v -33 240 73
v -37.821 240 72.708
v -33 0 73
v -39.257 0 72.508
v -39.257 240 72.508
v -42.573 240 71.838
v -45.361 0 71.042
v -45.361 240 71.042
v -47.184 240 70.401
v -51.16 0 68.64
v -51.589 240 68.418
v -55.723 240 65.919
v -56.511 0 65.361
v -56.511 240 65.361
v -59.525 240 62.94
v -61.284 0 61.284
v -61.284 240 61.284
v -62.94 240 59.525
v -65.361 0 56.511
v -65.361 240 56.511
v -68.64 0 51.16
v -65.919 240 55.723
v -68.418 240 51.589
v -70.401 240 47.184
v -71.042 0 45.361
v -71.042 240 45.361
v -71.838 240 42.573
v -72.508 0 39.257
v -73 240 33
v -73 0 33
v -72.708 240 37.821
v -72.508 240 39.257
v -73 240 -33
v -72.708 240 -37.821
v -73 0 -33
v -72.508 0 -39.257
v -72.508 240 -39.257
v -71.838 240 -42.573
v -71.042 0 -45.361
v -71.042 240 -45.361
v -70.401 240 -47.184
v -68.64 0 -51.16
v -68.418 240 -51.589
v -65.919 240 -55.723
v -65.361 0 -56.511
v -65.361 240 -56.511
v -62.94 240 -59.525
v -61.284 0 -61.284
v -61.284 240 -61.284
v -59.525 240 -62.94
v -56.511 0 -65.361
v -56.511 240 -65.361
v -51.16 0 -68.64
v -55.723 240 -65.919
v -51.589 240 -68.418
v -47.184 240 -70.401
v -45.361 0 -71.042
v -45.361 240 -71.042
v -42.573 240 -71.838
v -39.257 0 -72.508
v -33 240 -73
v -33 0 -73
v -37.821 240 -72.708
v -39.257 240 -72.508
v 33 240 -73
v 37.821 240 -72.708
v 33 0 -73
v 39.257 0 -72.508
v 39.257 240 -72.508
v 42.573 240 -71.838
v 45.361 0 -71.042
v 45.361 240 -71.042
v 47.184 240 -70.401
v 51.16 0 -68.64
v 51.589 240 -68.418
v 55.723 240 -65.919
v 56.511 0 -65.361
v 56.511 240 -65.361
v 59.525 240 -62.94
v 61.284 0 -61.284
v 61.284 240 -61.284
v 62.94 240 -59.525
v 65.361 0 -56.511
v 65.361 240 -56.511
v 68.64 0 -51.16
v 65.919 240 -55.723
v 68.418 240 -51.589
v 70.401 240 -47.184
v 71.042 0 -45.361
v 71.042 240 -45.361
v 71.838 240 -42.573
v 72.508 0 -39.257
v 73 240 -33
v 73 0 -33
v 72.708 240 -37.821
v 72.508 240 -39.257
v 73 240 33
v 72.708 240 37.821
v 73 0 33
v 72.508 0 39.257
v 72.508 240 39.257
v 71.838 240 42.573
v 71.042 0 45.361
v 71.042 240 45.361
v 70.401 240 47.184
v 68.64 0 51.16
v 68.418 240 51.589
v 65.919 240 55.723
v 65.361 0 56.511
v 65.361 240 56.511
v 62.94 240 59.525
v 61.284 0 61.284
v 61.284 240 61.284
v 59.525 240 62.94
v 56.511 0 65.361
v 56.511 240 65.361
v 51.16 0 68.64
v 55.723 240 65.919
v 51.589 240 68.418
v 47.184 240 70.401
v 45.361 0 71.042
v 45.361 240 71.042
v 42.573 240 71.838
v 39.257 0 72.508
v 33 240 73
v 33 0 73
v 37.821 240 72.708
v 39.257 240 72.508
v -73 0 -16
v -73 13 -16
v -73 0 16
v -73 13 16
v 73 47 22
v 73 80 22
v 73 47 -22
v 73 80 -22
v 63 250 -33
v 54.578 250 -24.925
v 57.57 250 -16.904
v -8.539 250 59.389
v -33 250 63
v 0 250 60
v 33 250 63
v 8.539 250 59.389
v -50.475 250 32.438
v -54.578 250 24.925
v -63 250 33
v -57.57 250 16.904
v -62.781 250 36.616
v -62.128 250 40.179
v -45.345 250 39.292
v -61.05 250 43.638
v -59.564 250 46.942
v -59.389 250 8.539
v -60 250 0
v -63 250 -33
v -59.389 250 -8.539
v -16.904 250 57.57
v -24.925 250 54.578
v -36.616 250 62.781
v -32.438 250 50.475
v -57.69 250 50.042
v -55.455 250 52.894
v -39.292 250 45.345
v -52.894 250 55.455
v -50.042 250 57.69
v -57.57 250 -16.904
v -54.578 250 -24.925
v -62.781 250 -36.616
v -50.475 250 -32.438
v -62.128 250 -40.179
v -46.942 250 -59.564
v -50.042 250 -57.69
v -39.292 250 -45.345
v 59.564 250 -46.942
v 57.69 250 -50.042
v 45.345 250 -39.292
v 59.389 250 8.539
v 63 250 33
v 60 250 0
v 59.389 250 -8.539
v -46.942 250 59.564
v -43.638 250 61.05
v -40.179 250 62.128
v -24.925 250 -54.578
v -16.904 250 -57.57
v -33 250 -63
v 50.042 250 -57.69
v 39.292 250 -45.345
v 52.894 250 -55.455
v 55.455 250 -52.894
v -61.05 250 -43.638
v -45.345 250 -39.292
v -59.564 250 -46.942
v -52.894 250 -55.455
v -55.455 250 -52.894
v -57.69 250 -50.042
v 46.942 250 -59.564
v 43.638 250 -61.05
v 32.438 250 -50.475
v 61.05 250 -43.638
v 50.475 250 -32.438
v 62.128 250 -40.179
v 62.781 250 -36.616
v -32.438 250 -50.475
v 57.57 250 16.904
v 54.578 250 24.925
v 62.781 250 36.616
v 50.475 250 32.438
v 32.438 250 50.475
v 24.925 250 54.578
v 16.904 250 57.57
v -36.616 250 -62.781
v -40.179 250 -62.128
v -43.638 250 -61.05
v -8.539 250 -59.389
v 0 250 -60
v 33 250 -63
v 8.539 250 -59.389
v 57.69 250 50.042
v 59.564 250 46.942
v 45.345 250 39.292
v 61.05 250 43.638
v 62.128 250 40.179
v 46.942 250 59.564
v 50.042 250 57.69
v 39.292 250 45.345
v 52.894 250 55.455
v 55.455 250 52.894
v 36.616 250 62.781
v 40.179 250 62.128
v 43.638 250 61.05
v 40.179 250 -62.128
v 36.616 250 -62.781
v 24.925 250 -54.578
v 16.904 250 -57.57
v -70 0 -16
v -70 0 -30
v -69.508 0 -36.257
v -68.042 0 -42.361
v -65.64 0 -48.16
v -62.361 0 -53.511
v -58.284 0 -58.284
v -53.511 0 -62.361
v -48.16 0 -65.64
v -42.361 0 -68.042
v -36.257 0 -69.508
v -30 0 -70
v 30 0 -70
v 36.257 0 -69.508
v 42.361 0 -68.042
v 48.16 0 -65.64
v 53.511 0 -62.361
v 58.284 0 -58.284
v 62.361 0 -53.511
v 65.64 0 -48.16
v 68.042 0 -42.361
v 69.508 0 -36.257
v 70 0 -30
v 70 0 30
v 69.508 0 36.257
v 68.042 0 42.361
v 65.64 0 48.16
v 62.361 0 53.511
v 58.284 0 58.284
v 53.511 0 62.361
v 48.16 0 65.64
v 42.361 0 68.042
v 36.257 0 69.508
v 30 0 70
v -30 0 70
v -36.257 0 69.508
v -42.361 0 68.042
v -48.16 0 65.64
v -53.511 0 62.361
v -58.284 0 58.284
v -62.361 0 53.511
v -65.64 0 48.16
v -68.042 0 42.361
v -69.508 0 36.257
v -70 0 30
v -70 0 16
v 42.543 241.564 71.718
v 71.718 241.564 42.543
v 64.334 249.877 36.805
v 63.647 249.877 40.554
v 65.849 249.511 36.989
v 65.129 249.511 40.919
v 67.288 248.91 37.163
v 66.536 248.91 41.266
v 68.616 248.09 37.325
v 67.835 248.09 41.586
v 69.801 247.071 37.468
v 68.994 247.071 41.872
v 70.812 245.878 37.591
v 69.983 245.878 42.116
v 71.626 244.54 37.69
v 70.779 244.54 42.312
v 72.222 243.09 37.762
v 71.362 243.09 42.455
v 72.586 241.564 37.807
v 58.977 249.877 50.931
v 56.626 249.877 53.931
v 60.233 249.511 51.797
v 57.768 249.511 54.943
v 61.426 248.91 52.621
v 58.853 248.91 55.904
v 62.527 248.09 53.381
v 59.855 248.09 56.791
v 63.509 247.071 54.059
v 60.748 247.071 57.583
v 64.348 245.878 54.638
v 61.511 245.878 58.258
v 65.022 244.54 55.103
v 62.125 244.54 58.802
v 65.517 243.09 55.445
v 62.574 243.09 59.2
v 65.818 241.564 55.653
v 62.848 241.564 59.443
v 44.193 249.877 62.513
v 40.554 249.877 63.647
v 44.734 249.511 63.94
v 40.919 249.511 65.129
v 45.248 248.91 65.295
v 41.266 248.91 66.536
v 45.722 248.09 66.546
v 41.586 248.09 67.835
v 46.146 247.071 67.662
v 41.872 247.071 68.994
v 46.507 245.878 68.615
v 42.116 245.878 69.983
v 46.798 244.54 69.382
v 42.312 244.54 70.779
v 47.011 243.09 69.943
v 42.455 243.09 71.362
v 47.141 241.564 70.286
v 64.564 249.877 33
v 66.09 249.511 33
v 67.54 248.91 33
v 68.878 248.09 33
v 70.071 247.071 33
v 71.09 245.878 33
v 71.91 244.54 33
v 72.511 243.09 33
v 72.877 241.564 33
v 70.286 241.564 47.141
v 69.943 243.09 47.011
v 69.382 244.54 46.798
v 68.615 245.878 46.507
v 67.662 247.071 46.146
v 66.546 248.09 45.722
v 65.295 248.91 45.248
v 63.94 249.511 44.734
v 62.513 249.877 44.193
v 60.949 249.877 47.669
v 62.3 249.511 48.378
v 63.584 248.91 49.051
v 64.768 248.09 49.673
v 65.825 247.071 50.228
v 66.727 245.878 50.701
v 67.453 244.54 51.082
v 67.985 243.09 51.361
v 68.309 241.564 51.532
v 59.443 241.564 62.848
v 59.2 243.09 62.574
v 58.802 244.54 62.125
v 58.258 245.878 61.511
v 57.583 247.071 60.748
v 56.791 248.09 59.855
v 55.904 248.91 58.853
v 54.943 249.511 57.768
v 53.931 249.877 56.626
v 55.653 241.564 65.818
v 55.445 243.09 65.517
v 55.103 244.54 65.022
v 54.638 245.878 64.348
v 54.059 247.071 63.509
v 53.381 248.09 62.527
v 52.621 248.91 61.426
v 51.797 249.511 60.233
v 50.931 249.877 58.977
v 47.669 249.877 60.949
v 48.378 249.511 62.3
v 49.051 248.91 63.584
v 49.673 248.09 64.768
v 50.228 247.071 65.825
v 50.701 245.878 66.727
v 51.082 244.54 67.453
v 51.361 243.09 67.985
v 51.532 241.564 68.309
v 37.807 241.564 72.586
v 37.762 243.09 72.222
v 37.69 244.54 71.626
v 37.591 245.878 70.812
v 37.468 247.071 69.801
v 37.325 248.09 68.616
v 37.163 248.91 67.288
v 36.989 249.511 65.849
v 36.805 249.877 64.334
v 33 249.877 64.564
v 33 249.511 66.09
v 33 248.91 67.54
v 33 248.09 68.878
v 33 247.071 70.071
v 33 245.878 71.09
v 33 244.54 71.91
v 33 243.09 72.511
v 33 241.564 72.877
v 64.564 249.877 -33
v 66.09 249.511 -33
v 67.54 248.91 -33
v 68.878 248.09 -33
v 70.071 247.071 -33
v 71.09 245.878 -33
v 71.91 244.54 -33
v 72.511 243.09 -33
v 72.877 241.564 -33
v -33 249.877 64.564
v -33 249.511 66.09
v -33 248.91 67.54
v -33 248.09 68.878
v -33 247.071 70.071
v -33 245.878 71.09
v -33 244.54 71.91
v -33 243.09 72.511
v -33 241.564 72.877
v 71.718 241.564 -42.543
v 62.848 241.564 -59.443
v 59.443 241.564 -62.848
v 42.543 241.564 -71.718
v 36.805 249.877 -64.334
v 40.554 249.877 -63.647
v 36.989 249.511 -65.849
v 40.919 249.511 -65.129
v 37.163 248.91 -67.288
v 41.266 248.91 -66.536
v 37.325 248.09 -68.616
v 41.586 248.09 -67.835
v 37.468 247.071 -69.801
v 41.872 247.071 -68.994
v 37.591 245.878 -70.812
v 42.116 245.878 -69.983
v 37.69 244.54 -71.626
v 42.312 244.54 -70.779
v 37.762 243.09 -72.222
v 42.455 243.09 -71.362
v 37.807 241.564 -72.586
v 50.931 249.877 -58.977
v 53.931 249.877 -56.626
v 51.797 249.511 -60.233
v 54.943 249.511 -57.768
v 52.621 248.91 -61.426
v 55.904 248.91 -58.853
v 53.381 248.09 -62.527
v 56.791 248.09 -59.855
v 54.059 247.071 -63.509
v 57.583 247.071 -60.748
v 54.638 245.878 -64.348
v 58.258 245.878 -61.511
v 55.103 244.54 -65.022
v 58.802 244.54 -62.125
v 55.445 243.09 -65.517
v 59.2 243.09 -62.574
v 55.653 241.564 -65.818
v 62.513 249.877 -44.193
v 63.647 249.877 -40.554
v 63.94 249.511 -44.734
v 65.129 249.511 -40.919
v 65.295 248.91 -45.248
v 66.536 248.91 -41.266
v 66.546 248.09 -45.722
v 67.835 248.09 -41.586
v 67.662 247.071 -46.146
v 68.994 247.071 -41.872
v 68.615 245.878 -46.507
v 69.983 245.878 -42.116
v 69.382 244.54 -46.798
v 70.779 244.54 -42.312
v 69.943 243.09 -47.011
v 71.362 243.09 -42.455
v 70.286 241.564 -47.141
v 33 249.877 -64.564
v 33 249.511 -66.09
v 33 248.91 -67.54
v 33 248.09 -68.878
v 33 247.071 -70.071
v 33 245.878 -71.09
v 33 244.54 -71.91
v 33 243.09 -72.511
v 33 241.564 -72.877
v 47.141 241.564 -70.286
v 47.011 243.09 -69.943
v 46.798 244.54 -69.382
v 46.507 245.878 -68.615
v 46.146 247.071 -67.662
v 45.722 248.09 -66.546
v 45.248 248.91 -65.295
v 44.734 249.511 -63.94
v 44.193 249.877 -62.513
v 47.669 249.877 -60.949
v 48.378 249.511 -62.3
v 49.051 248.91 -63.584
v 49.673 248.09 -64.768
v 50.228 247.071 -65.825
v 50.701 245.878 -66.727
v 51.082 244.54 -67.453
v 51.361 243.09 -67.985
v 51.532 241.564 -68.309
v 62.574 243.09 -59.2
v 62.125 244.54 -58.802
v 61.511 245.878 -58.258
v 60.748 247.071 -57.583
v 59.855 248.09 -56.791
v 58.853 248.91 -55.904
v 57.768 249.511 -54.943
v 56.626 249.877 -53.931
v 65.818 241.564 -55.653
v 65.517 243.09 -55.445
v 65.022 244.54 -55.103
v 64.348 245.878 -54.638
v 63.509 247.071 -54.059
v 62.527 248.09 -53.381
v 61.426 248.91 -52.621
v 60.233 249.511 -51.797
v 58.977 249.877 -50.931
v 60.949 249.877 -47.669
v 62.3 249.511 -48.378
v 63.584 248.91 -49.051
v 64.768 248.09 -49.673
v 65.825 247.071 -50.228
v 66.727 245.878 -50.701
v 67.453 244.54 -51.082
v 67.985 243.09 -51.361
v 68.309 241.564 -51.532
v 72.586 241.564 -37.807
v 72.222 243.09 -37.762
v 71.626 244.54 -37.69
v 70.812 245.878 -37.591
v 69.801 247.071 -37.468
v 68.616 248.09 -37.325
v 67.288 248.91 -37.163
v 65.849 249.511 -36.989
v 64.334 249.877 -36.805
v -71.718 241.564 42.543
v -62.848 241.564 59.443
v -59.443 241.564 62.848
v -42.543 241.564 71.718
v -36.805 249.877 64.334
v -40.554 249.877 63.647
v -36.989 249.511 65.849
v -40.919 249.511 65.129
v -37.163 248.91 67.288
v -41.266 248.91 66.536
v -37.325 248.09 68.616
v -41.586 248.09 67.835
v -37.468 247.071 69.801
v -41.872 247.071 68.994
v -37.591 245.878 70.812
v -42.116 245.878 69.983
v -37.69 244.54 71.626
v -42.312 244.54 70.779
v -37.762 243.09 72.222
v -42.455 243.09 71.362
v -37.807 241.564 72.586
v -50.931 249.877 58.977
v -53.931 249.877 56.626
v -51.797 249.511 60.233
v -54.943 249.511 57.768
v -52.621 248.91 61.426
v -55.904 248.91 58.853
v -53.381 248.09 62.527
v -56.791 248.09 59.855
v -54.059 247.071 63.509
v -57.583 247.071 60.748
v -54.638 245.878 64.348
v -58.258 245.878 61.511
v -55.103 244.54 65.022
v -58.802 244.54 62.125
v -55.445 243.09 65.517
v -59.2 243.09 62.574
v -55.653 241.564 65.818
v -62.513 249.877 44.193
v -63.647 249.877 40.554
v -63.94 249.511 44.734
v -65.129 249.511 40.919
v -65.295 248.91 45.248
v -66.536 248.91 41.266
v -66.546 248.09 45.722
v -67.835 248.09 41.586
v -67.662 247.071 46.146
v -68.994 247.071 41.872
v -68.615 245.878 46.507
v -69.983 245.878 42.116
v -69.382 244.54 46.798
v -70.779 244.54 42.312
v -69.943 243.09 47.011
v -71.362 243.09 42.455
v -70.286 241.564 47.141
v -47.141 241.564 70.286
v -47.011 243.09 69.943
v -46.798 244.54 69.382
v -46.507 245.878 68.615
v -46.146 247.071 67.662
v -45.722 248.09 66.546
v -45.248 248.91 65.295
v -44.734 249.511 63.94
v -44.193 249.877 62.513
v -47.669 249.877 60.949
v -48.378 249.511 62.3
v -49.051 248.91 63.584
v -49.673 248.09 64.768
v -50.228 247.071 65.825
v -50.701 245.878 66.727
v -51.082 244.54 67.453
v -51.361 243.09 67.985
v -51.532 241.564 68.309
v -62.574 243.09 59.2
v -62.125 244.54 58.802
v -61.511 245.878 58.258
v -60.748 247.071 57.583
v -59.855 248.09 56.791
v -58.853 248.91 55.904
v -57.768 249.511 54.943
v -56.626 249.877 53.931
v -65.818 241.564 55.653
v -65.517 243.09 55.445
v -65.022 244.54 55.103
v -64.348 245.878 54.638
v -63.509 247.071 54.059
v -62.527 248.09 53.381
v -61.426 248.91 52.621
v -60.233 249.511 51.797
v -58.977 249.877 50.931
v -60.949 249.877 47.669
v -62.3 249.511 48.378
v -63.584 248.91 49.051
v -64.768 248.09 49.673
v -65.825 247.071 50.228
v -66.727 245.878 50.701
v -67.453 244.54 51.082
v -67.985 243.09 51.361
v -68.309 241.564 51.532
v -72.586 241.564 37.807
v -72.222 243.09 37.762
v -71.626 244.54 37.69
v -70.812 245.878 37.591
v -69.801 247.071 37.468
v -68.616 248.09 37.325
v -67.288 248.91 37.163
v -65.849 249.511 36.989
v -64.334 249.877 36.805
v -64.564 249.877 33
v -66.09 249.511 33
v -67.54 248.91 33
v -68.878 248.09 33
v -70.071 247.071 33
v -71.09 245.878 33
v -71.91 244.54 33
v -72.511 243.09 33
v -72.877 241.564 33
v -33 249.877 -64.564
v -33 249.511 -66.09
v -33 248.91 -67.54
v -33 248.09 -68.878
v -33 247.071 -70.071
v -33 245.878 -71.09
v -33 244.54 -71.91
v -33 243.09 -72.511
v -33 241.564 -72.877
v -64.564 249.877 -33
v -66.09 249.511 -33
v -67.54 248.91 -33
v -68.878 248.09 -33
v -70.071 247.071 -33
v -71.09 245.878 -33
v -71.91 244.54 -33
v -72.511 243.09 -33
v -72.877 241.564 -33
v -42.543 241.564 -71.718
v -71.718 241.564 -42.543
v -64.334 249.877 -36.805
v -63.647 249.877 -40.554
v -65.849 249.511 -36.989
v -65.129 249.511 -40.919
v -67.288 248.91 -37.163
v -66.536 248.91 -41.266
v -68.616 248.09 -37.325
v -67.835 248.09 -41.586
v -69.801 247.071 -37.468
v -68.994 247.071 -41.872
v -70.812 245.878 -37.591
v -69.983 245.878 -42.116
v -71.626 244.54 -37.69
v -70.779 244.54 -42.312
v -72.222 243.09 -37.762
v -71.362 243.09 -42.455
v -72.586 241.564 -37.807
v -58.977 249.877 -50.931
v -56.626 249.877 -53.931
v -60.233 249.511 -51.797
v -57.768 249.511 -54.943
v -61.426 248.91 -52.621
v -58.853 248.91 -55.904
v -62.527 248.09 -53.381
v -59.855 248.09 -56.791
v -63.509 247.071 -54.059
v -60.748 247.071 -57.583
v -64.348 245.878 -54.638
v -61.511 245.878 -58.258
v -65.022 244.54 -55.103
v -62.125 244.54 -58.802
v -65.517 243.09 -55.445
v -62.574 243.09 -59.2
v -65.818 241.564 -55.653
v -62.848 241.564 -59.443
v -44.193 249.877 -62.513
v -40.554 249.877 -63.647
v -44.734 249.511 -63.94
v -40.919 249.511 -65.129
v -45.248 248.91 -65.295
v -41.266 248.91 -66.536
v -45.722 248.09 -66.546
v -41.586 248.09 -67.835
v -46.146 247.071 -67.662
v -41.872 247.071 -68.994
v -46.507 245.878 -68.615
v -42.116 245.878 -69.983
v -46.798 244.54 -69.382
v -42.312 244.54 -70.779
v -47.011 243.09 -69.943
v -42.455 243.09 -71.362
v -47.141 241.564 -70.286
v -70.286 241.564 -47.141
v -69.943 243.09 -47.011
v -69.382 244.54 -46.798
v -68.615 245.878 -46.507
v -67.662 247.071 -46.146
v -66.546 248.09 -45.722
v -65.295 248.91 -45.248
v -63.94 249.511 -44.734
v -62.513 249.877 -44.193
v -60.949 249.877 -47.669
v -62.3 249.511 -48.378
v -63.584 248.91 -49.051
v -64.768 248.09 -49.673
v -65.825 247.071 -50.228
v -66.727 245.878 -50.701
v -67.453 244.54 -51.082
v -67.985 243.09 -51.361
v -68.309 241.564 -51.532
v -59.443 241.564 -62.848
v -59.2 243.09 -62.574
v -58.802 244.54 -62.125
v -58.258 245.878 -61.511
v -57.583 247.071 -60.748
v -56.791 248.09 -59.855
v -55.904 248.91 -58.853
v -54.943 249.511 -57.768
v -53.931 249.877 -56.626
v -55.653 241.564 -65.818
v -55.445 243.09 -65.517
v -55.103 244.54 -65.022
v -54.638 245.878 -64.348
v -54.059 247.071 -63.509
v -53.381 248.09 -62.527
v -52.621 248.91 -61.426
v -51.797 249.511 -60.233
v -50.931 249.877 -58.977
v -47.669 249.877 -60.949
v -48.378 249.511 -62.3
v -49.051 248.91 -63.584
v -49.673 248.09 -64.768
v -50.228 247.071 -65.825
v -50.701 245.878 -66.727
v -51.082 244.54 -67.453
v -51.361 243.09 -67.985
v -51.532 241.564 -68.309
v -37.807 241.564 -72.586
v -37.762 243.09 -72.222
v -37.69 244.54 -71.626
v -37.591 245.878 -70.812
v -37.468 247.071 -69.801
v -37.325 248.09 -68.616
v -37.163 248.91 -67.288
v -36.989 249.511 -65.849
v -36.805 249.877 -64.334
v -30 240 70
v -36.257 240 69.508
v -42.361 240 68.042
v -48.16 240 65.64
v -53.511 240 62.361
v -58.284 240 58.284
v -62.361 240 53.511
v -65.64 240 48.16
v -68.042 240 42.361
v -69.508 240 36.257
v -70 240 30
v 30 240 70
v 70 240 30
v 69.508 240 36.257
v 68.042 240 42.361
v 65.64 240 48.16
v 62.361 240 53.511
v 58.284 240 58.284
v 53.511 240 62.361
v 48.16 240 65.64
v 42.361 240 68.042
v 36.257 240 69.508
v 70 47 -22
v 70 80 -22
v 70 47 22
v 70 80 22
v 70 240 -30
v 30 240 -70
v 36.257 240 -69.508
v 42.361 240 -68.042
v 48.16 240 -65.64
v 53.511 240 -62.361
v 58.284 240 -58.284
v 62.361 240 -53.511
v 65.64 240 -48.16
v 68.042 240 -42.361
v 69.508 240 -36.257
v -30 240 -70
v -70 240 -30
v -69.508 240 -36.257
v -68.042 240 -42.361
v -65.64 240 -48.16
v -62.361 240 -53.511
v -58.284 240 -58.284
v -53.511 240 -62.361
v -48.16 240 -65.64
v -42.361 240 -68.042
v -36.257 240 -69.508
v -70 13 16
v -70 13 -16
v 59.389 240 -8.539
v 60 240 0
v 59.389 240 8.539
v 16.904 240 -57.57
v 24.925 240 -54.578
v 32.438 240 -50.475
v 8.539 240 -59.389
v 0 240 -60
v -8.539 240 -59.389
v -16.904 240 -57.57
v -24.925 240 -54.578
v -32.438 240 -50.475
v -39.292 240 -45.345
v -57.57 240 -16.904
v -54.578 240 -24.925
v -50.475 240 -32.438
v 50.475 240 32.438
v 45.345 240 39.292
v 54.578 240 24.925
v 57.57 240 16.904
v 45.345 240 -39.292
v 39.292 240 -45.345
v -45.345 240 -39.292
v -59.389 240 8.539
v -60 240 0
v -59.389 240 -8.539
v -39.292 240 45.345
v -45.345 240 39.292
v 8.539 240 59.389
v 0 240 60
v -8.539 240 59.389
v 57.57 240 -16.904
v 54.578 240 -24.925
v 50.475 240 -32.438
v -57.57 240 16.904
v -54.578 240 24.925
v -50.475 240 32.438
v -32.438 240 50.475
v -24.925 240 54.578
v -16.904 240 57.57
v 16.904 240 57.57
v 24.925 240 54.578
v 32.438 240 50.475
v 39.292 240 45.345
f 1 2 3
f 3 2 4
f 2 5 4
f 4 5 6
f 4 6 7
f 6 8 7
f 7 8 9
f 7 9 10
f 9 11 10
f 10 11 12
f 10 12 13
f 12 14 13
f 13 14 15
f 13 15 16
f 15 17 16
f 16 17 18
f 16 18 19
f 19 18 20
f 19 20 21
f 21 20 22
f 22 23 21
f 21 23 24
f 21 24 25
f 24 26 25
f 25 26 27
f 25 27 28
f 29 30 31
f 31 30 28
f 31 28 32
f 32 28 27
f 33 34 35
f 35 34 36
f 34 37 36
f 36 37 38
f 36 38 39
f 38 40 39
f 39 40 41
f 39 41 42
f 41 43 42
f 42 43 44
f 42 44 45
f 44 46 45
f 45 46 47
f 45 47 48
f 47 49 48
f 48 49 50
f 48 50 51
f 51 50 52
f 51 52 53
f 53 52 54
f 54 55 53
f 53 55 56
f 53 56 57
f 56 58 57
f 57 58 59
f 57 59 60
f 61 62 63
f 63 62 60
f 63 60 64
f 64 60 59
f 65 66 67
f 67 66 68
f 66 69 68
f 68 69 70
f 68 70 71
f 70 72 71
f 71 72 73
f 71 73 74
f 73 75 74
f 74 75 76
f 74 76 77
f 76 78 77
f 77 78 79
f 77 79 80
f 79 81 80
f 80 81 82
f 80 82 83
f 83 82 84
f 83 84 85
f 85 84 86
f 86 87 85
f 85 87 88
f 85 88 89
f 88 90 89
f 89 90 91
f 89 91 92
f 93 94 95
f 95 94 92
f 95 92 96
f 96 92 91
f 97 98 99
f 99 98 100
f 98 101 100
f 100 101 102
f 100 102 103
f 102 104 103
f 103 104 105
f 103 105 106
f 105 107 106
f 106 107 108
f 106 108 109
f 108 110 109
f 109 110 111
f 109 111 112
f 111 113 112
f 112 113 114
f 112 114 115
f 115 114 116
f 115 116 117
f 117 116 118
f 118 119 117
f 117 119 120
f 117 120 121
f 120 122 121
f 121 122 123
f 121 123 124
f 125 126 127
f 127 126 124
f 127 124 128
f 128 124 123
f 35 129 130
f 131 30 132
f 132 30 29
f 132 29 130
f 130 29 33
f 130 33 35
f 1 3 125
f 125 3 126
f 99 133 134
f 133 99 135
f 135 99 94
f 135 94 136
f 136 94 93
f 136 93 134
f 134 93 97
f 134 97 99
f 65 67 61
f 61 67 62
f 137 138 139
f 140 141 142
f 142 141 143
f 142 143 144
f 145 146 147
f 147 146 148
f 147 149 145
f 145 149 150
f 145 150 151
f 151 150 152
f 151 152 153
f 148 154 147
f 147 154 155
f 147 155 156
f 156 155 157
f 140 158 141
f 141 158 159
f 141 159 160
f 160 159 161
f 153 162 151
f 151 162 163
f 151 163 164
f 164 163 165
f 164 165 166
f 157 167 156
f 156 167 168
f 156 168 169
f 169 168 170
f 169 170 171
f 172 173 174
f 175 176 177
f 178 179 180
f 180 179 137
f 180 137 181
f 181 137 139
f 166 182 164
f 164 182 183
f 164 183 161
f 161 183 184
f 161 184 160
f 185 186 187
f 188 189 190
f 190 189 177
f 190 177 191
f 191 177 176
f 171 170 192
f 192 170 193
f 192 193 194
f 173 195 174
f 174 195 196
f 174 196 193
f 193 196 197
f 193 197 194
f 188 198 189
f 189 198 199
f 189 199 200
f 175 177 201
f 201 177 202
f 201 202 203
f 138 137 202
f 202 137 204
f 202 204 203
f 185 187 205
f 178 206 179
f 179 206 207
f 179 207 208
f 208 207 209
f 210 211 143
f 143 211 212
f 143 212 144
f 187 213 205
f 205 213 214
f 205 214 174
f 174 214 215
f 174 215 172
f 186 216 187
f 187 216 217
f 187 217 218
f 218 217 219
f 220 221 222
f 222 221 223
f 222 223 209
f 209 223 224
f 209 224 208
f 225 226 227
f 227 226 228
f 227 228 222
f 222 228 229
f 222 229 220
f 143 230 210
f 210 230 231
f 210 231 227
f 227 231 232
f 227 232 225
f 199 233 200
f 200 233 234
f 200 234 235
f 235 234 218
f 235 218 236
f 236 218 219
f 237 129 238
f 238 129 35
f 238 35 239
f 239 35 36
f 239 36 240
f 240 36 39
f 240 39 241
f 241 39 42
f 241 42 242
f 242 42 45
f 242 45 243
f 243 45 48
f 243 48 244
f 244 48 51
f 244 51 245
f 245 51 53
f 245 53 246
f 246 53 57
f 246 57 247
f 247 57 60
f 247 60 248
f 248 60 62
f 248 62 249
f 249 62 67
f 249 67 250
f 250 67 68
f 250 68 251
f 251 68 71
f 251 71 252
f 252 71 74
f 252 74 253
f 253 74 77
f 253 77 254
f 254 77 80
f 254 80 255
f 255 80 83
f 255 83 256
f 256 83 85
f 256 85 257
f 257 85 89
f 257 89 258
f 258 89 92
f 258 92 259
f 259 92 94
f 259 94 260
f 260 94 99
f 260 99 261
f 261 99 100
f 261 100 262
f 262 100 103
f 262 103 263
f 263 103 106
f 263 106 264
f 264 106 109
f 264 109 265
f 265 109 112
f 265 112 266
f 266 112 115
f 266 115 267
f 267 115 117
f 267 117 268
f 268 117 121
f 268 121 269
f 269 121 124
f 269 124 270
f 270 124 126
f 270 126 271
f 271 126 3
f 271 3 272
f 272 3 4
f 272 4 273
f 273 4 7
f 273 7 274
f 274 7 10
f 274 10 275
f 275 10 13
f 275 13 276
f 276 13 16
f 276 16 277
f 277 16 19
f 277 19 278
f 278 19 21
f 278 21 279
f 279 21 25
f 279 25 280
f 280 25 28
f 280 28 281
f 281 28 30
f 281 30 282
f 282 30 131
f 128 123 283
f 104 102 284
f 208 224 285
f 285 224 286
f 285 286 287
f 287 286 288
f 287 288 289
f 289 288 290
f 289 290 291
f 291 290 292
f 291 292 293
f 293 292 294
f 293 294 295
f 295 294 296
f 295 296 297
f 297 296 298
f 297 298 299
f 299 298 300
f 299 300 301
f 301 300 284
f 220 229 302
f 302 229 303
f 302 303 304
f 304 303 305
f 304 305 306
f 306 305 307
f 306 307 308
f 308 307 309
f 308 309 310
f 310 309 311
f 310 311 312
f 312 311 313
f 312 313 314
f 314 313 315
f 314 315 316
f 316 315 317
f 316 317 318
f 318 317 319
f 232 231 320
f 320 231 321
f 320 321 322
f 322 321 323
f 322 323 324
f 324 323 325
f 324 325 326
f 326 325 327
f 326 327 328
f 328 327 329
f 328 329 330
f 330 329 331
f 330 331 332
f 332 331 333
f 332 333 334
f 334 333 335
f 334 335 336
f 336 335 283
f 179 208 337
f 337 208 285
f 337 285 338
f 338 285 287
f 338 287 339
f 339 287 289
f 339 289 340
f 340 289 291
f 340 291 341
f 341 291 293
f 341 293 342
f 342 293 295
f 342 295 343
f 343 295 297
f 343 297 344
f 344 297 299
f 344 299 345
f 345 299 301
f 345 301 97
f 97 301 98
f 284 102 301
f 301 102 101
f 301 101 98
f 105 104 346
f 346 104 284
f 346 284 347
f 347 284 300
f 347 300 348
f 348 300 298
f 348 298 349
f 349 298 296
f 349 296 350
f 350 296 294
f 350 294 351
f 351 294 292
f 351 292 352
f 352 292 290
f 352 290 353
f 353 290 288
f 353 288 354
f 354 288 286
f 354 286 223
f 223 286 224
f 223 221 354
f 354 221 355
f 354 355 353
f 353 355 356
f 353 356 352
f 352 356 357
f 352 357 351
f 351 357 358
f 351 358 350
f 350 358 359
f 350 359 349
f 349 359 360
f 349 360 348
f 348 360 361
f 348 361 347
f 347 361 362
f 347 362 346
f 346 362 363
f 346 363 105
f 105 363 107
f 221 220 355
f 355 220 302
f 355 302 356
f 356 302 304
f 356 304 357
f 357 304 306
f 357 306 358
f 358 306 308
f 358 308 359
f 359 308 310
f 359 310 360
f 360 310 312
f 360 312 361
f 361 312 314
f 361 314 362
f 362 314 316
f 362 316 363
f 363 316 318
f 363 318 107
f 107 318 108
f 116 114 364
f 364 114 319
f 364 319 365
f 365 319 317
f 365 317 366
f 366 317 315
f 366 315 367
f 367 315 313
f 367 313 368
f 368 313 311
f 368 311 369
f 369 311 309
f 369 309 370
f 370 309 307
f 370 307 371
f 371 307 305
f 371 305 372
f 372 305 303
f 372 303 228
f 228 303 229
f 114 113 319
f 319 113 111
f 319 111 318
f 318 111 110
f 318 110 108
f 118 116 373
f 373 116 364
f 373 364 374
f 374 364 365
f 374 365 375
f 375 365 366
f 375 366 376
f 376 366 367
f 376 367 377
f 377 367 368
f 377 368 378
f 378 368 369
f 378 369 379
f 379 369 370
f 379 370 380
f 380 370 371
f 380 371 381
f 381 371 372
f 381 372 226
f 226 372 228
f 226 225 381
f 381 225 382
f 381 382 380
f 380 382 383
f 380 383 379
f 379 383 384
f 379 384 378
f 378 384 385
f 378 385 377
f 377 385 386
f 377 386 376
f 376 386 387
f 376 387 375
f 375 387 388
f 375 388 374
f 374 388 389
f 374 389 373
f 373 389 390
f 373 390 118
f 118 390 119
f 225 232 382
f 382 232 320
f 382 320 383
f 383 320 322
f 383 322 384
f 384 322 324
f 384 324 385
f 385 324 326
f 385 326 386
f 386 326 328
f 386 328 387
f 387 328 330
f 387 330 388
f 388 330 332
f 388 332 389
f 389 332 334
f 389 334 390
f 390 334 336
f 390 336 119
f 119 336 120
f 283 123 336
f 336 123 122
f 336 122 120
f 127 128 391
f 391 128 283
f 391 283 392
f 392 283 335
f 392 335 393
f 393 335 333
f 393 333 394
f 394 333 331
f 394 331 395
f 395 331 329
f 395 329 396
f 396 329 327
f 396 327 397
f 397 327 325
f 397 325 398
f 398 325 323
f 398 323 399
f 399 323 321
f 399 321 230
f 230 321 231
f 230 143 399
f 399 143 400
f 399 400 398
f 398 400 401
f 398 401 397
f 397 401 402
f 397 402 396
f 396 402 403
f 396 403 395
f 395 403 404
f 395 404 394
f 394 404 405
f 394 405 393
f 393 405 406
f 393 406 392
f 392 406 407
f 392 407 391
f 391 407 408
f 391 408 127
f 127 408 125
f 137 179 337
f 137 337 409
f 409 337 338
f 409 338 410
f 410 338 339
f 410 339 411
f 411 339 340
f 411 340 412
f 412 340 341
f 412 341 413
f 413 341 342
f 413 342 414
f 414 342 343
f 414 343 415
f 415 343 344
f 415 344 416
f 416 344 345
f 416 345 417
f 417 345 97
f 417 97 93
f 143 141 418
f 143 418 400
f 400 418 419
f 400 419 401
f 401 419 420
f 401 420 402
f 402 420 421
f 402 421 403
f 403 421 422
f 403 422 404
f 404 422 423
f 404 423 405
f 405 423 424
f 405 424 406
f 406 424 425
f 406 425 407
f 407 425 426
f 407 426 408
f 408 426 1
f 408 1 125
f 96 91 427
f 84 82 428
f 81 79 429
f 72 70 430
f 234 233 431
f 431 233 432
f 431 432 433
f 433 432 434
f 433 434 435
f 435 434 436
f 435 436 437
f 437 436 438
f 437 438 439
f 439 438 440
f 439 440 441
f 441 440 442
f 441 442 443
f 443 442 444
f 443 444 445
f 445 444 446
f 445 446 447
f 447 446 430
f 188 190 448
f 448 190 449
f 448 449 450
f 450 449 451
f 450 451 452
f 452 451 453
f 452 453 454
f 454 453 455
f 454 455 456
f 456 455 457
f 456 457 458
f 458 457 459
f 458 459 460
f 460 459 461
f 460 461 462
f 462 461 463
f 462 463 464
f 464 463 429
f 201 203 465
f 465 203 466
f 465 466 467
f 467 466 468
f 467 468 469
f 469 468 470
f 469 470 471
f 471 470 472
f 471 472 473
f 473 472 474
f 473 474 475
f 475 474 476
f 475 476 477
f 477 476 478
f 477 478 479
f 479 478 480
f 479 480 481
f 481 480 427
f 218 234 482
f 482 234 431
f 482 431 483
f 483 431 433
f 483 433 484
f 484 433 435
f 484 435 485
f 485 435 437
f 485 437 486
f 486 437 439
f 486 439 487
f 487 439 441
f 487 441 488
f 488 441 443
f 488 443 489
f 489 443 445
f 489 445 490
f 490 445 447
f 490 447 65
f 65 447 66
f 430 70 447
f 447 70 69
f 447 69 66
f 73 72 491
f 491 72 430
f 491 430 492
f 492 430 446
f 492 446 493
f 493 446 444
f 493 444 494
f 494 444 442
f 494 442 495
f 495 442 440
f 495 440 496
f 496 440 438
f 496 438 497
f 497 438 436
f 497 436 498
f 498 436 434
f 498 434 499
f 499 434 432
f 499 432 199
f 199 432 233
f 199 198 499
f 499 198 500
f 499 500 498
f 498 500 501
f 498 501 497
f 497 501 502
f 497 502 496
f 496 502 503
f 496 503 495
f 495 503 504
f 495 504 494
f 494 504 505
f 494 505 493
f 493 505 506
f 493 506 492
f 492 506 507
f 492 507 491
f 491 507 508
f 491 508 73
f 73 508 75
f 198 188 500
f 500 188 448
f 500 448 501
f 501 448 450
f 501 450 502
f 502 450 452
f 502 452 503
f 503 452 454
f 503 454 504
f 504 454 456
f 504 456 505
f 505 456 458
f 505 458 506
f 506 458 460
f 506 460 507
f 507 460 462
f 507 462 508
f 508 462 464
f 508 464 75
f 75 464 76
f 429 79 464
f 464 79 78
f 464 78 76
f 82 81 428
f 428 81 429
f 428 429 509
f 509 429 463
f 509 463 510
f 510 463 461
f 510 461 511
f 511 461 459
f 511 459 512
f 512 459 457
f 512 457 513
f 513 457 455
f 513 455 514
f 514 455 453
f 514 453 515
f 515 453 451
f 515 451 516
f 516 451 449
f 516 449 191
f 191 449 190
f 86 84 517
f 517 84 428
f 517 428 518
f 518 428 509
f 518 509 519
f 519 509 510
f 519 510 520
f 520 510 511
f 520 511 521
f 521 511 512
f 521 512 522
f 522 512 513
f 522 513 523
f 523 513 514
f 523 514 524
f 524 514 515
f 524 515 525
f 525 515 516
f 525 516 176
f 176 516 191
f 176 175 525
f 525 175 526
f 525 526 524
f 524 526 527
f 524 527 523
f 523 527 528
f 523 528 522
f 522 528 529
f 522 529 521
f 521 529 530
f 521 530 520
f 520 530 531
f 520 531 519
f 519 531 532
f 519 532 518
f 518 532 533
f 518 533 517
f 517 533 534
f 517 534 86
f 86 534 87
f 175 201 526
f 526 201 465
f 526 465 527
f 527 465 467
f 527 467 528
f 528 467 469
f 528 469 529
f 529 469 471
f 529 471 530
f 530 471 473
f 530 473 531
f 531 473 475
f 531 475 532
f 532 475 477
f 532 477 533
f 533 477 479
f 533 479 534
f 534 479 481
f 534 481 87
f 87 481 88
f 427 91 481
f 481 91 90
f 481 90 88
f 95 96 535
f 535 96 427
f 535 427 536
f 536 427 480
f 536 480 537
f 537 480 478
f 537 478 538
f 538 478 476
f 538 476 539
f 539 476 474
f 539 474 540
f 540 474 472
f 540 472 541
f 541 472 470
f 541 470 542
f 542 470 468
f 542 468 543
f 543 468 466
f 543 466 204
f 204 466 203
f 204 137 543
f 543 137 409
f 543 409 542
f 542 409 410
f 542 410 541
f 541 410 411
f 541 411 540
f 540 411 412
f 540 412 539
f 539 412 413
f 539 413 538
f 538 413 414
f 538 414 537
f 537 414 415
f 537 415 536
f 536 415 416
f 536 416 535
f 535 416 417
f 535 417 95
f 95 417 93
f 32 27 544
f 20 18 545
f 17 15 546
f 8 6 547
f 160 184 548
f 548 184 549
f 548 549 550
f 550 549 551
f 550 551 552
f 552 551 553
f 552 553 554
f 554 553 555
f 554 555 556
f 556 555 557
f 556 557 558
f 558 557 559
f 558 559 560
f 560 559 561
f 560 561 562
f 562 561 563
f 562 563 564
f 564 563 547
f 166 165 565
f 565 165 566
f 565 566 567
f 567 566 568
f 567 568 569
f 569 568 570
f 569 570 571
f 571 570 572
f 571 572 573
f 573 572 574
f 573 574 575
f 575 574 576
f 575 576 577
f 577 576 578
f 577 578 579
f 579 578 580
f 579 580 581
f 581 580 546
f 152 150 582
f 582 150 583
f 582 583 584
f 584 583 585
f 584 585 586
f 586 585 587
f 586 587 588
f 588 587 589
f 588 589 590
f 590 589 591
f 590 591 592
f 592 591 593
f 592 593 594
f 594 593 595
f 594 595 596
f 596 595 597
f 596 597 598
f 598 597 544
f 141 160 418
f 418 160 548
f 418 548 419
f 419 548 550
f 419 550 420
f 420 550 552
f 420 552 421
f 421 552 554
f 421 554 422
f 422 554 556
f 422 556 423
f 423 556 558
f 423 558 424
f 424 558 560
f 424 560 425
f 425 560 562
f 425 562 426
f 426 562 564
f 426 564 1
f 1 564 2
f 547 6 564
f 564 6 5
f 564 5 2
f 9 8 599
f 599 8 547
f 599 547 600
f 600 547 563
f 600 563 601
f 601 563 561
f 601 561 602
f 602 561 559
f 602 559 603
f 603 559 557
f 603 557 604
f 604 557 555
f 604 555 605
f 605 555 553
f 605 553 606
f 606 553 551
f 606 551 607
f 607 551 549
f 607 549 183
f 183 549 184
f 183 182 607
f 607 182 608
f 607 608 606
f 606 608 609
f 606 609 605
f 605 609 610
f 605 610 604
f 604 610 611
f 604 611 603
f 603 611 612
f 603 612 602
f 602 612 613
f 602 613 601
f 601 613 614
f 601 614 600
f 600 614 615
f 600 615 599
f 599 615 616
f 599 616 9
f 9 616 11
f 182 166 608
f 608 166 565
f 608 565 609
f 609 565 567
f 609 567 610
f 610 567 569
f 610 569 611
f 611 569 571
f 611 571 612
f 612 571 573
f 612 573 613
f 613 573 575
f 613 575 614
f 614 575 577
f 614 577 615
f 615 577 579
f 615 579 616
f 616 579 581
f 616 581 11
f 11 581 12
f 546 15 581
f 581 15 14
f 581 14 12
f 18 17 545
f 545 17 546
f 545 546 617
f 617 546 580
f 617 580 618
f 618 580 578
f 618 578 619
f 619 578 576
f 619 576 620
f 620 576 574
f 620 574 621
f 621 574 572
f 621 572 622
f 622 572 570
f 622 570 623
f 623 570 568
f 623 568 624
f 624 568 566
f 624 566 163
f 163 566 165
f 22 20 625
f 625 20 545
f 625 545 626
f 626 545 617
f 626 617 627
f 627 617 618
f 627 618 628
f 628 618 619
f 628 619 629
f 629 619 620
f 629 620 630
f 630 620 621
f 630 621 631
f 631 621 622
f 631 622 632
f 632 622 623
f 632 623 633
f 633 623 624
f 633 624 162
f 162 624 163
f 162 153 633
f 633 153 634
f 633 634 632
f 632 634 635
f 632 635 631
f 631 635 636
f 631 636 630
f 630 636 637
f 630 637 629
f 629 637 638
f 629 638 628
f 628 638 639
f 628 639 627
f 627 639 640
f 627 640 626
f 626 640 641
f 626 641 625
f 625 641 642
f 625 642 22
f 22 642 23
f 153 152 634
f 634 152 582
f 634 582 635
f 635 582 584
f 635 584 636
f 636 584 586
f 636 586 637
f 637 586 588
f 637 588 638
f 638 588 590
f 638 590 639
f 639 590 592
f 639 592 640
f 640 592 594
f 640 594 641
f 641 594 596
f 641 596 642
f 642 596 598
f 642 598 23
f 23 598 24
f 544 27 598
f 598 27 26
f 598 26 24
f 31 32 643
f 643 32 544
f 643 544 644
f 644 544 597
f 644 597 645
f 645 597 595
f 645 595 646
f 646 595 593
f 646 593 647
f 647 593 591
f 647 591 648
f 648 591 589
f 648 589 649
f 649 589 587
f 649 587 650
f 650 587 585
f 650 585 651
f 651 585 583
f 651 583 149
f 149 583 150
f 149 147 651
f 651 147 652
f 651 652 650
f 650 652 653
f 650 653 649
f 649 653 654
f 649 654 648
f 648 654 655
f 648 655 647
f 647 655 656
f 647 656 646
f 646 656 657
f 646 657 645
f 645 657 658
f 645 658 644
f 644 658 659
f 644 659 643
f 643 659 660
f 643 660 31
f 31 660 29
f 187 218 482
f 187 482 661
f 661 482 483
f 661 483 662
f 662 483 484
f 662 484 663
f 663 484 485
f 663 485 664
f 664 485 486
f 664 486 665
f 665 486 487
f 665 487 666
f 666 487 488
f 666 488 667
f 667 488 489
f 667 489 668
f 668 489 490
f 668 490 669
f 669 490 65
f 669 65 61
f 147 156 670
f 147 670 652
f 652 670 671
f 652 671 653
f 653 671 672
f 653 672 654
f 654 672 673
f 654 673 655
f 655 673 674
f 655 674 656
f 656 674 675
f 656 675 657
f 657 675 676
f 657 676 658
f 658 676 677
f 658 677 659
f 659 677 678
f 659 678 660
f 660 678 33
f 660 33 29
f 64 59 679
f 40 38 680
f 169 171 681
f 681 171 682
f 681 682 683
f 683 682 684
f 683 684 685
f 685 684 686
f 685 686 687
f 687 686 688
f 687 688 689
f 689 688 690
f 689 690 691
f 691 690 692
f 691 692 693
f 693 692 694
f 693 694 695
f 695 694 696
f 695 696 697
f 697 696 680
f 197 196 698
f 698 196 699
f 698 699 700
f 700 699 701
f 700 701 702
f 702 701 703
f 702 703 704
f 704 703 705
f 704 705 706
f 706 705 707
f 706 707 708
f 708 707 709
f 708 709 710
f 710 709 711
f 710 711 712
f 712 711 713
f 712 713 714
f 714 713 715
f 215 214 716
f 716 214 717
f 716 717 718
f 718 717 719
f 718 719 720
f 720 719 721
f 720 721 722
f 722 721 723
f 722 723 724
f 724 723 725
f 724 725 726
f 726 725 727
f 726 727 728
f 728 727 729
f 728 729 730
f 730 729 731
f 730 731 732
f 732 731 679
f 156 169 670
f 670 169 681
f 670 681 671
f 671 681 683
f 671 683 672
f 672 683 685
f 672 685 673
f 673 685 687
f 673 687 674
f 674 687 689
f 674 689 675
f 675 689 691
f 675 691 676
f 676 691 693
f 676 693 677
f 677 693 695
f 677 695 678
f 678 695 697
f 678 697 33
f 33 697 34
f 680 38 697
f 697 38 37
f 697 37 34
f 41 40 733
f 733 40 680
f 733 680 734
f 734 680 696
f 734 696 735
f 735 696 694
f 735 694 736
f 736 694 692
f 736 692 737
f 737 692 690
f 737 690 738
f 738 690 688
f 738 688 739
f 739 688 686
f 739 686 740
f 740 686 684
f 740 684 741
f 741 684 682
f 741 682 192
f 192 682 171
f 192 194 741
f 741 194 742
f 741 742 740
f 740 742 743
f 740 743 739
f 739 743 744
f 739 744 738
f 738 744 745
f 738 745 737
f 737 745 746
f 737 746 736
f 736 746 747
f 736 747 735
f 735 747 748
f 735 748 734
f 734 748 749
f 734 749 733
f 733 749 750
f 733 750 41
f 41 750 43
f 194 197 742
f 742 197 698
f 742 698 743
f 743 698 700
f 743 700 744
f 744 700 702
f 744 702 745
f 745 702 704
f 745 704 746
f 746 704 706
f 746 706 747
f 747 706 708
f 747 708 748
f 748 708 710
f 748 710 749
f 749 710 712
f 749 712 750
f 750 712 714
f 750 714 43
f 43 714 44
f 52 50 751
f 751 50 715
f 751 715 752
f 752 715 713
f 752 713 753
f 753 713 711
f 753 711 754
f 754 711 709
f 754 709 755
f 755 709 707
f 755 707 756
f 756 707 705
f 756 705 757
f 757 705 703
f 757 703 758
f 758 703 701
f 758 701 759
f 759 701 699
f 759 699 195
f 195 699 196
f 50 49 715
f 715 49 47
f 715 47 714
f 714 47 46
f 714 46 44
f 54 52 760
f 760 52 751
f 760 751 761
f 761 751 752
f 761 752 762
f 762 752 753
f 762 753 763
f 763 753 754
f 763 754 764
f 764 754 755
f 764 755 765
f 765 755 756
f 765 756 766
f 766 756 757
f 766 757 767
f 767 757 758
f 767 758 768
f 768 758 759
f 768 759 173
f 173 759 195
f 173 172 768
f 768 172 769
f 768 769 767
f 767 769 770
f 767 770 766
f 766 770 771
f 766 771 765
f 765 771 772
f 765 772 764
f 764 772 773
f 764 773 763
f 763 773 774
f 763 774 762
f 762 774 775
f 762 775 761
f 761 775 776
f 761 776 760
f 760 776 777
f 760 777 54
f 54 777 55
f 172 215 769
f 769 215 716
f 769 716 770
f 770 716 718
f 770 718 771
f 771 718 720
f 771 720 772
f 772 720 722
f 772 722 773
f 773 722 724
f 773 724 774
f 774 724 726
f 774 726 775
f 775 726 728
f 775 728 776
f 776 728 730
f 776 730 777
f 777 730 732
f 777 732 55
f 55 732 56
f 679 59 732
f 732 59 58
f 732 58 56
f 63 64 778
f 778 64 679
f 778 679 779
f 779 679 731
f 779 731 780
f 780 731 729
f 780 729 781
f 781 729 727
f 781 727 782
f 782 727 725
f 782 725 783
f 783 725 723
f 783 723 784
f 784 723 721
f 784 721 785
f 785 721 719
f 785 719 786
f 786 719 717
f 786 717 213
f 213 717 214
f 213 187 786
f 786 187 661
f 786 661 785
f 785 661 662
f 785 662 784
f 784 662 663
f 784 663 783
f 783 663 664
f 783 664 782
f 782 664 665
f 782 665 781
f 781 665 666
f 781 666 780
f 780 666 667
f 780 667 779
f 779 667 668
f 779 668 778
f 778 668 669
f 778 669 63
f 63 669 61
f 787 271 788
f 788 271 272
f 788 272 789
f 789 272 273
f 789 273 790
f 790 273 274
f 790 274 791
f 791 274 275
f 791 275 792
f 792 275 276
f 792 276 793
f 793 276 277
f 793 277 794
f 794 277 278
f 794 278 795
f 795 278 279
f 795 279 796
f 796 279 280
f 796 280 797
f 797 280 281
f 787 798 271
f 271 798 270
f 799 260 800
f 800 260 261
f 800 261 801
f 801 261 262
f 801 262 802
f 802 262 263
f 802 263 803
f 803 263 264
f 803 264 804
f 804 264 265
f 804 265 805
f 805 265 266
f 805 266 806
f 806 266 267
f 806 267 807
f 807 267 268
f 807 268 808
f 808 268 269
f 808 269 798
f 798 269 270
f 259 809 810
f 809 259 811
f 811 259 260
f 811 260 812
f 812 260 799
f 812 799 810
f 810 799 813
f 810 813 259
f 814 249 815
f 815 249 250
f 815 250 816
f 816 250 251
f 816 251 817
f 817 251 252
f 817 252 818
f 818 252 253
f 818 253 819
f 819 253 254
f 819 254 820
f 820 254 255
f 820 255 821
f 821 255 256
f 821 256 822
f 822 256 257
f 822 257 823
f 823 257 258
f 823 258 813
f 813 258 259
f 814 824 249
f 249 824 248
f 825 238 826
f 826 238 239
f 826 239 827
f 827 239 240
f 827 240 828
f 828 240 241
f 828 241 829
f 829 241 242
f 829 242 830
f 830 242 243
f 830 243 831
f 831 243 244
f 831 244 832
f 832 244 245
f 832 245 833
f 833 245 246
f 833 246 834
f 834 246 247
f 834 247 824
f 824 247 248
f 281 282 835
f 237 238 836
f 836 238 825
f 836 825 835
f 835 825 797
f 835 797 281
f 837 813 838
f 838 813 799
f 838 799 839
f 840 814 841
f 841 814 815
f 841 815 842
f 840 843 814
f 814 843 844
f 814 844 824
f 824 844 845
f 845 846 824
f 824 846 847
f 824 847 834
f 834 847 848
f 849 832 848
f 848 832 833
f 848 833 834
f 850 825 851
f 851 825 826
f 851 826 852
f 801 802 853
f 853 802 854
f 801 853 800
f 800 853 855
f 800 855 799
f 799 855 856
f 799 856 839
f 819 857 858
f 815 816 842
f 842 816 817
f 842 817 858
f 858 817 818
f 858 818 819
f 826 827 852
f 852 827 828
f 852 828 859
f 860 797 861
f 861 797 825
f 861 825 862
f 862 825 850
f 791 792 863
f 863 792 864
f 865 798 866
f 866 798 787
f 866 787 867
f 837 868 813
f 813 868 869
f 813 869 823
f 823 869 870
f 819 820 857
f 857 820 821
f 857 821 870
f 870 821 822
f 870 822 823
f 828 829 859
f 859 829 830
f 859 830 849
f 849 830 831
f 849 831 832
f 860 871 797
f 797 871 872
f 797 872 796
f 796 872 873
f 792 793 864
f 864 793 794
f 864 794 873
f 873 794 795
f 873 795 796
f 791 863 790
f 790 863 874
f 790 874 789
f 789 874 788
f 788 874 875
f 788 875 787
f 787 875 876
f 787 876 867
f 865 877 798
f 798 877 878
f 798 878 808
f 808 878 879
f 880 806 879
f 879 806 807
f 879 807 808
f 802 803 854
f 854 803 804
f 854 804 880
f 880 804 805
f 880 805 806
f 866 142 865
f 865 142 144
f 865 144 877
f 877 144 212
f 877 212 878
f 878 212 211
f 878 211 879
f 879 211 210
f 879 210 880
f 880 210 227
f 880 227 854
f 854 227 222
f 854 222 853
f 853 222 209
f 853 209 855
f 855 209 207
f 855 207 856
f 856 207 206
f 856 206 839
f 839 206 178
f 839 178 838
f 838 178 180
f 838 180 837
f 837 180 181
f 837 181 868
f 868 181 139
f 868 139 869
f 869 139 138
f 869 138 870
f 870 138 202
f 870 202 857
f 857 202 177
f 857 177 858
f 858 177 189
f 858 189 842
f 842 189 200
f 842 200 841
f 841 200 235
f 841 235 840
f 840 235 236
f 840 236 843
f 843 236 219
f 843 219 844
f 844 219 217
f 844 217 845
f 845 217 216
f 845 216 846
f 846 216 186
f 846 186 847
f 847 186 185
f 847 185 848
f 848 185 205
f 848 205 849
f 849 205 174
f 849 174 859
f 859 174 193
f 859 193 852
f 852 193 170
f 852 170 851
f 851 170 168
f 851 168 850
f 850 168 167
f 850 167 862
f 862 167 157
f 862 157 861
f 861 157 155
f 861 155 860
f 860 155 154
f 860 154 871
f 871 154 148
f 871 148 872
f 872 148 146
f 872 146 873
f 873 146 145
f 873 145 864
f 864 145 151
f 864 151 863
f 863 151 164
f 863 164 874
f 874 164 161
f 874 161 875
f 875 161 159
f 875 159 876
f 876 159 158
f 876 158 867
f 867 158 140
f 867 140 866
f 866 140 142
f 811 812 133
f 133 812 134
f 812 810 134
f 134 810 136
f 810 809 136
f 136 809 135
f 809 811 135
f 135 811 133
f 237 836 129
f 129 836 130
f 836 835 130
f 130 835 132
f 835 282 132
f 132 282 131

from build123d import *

# Parameters (mm, degrees)
SKETCH5_W           = 146
SKETCH5_H           = 146
BOSS_EXTRUDE2_DEPTH = 250
FILLET8_R           = 40
FILLET9_R           = 40
FILLET10_R          = 40
FILLET11_R          = 40
FILLET12_R          = 10
BOSS_EXTRUDE5_START = -240
BOSS_EXTRUDE5_DEPTH = 240
SKETCH8_R           = 60
CUT_EXTRUDE1_DEPTH  = 34
SKETCH10_W          = 44
SKETCH10_H          = 33
CUT_EXTRUDE2_DEPTH  = 3
CUT_EXTRUDE3_DEPTH  = 3


# Read off the part's stored shape, not the designer's step: Boss-Extrude5
with BuildPart() as part:
    # Sketch5 → Boss-Extrude2 (new body)
    with BuildSketch(Plane(origin=(0, 0, 0), x_dir=(1, 0, 0), z_dir=(0, 1, 0))):
        Rectangle(SKETCH5_W, SKETCH5_H)
    extrude(amount=BOSS_EXTRUDE2_DEPTH)

    # Fillet8
    fillet8_edges = [part.edges().sort_by_distance(p)[0] for p in [
        (73, 125, 73),
    ]]
    fillet(fillet8_edges, radius=FILLET8_R)

    # Fillet9
    fillet9_edges = [part.edges().sort_by_distance(p)[0] for p in [
        (73, 125, -73),
    ]]
    fillet(fillet9_edges, radius=FILLET9_R)

    # Fillet10
    fillet10_edges = [part.edges().sort_by_distance(p)[0] for p in [
        (-73, 125, -73),
    ]]
    fillet(fillet10_edges, radius=FILLET10_R)

    # Fillet11
    fillet11_edges = [part.edges().sort_by_distance(p)[0] for p in [
        (-73, 125, 73),
    ]]
    fillet(fillet11_edges, radius=FILLET11_R)

    # Fillet12
    fillet12_edges = [part.edges().sort_by_distance(p)[0] for p in [
        (73, 250, 0),
        (61.284271247, 250, 61.284271247),
        (0, 250, -73),
        (61.284271247, 250, -61.284271247),
        (-73, 250, 0),
        (-61.284271247, 250, -61.284271247),
        (0, 250, 73),
        (-61.284271247, 250, 61.284271247),
    ]]
    fillet(fillet12_edges, radius=FILLET12_R)

    # Boss-Extrude5 outline → Boss-Extrude5 (cut)
    with BuildSketch(Plane.XZ.offset(BOSS_EXTRUDE5_START)):
        with BuildLine():
            Line((30, 70), (-30, 70))
            ThreePointArc((-30, 70), (-58.284271247, 58.284271247), (-70, 30))
            Line((-70, 30), (-70, -30))
            ThreePointArc((-70, -30), (-58.284271247, -58.284271247), (-30, -70))
            Line((-30, -70), (30, -70))
            ThreePointArc((30, -70), (58.284271247, -58.284271247), (70, -30))
            Line((70, -30), (70, 30))
            ThreePointArc((70, 30), (58.284271247, 58.284271247), (30, 70))
        make_face()
    extrude(amount=BOSS_EXTRUDE5_DEPTH, mode=Mode.SUBTRACT)

    # Sketch8 → Cut-Extrude1 (cut)
    with BuildSketch(Plane(origin=(0, 250, 0), x_dir=(1, 0, 0), z_dir=(0, 1, 0))):
        with Locations(Location((0, 0, 0), (0, 0, 270))):
            Circle(SKETCH8_R)
    extrude(amount=-CUT_EXTRUDE1_DEPTH, mode=Mode.SUBTRACT)

    # Sketch10 → Cut-Extrude2 (cut)
    with BuildSketch(Plane(origin=(73, 0, 0), x_dir=(0, 0, -1), z_dir=(1, 0, 0))):
        with Locations((0, 63.5)):
            Rectangle(SKETCH10_W, SKETCH10_H)
    extrude(amount=-CUT_EXTRUDE2_DEPTH, mode=Mode.SUBTRACT)

    # Sketch11 → Cut-Extrude3 (cut)
    with BuildSketch(Plane.ZY.offset(73)):
        Polygon((0, 0), (-16, 0), (-16, 13), (16, 13), (16, 0), align=None)
    extrude(amount=-CUT_EXTRUDE3_DEPTH, mode=Mode.SUBTRACT)


solid = part.part
